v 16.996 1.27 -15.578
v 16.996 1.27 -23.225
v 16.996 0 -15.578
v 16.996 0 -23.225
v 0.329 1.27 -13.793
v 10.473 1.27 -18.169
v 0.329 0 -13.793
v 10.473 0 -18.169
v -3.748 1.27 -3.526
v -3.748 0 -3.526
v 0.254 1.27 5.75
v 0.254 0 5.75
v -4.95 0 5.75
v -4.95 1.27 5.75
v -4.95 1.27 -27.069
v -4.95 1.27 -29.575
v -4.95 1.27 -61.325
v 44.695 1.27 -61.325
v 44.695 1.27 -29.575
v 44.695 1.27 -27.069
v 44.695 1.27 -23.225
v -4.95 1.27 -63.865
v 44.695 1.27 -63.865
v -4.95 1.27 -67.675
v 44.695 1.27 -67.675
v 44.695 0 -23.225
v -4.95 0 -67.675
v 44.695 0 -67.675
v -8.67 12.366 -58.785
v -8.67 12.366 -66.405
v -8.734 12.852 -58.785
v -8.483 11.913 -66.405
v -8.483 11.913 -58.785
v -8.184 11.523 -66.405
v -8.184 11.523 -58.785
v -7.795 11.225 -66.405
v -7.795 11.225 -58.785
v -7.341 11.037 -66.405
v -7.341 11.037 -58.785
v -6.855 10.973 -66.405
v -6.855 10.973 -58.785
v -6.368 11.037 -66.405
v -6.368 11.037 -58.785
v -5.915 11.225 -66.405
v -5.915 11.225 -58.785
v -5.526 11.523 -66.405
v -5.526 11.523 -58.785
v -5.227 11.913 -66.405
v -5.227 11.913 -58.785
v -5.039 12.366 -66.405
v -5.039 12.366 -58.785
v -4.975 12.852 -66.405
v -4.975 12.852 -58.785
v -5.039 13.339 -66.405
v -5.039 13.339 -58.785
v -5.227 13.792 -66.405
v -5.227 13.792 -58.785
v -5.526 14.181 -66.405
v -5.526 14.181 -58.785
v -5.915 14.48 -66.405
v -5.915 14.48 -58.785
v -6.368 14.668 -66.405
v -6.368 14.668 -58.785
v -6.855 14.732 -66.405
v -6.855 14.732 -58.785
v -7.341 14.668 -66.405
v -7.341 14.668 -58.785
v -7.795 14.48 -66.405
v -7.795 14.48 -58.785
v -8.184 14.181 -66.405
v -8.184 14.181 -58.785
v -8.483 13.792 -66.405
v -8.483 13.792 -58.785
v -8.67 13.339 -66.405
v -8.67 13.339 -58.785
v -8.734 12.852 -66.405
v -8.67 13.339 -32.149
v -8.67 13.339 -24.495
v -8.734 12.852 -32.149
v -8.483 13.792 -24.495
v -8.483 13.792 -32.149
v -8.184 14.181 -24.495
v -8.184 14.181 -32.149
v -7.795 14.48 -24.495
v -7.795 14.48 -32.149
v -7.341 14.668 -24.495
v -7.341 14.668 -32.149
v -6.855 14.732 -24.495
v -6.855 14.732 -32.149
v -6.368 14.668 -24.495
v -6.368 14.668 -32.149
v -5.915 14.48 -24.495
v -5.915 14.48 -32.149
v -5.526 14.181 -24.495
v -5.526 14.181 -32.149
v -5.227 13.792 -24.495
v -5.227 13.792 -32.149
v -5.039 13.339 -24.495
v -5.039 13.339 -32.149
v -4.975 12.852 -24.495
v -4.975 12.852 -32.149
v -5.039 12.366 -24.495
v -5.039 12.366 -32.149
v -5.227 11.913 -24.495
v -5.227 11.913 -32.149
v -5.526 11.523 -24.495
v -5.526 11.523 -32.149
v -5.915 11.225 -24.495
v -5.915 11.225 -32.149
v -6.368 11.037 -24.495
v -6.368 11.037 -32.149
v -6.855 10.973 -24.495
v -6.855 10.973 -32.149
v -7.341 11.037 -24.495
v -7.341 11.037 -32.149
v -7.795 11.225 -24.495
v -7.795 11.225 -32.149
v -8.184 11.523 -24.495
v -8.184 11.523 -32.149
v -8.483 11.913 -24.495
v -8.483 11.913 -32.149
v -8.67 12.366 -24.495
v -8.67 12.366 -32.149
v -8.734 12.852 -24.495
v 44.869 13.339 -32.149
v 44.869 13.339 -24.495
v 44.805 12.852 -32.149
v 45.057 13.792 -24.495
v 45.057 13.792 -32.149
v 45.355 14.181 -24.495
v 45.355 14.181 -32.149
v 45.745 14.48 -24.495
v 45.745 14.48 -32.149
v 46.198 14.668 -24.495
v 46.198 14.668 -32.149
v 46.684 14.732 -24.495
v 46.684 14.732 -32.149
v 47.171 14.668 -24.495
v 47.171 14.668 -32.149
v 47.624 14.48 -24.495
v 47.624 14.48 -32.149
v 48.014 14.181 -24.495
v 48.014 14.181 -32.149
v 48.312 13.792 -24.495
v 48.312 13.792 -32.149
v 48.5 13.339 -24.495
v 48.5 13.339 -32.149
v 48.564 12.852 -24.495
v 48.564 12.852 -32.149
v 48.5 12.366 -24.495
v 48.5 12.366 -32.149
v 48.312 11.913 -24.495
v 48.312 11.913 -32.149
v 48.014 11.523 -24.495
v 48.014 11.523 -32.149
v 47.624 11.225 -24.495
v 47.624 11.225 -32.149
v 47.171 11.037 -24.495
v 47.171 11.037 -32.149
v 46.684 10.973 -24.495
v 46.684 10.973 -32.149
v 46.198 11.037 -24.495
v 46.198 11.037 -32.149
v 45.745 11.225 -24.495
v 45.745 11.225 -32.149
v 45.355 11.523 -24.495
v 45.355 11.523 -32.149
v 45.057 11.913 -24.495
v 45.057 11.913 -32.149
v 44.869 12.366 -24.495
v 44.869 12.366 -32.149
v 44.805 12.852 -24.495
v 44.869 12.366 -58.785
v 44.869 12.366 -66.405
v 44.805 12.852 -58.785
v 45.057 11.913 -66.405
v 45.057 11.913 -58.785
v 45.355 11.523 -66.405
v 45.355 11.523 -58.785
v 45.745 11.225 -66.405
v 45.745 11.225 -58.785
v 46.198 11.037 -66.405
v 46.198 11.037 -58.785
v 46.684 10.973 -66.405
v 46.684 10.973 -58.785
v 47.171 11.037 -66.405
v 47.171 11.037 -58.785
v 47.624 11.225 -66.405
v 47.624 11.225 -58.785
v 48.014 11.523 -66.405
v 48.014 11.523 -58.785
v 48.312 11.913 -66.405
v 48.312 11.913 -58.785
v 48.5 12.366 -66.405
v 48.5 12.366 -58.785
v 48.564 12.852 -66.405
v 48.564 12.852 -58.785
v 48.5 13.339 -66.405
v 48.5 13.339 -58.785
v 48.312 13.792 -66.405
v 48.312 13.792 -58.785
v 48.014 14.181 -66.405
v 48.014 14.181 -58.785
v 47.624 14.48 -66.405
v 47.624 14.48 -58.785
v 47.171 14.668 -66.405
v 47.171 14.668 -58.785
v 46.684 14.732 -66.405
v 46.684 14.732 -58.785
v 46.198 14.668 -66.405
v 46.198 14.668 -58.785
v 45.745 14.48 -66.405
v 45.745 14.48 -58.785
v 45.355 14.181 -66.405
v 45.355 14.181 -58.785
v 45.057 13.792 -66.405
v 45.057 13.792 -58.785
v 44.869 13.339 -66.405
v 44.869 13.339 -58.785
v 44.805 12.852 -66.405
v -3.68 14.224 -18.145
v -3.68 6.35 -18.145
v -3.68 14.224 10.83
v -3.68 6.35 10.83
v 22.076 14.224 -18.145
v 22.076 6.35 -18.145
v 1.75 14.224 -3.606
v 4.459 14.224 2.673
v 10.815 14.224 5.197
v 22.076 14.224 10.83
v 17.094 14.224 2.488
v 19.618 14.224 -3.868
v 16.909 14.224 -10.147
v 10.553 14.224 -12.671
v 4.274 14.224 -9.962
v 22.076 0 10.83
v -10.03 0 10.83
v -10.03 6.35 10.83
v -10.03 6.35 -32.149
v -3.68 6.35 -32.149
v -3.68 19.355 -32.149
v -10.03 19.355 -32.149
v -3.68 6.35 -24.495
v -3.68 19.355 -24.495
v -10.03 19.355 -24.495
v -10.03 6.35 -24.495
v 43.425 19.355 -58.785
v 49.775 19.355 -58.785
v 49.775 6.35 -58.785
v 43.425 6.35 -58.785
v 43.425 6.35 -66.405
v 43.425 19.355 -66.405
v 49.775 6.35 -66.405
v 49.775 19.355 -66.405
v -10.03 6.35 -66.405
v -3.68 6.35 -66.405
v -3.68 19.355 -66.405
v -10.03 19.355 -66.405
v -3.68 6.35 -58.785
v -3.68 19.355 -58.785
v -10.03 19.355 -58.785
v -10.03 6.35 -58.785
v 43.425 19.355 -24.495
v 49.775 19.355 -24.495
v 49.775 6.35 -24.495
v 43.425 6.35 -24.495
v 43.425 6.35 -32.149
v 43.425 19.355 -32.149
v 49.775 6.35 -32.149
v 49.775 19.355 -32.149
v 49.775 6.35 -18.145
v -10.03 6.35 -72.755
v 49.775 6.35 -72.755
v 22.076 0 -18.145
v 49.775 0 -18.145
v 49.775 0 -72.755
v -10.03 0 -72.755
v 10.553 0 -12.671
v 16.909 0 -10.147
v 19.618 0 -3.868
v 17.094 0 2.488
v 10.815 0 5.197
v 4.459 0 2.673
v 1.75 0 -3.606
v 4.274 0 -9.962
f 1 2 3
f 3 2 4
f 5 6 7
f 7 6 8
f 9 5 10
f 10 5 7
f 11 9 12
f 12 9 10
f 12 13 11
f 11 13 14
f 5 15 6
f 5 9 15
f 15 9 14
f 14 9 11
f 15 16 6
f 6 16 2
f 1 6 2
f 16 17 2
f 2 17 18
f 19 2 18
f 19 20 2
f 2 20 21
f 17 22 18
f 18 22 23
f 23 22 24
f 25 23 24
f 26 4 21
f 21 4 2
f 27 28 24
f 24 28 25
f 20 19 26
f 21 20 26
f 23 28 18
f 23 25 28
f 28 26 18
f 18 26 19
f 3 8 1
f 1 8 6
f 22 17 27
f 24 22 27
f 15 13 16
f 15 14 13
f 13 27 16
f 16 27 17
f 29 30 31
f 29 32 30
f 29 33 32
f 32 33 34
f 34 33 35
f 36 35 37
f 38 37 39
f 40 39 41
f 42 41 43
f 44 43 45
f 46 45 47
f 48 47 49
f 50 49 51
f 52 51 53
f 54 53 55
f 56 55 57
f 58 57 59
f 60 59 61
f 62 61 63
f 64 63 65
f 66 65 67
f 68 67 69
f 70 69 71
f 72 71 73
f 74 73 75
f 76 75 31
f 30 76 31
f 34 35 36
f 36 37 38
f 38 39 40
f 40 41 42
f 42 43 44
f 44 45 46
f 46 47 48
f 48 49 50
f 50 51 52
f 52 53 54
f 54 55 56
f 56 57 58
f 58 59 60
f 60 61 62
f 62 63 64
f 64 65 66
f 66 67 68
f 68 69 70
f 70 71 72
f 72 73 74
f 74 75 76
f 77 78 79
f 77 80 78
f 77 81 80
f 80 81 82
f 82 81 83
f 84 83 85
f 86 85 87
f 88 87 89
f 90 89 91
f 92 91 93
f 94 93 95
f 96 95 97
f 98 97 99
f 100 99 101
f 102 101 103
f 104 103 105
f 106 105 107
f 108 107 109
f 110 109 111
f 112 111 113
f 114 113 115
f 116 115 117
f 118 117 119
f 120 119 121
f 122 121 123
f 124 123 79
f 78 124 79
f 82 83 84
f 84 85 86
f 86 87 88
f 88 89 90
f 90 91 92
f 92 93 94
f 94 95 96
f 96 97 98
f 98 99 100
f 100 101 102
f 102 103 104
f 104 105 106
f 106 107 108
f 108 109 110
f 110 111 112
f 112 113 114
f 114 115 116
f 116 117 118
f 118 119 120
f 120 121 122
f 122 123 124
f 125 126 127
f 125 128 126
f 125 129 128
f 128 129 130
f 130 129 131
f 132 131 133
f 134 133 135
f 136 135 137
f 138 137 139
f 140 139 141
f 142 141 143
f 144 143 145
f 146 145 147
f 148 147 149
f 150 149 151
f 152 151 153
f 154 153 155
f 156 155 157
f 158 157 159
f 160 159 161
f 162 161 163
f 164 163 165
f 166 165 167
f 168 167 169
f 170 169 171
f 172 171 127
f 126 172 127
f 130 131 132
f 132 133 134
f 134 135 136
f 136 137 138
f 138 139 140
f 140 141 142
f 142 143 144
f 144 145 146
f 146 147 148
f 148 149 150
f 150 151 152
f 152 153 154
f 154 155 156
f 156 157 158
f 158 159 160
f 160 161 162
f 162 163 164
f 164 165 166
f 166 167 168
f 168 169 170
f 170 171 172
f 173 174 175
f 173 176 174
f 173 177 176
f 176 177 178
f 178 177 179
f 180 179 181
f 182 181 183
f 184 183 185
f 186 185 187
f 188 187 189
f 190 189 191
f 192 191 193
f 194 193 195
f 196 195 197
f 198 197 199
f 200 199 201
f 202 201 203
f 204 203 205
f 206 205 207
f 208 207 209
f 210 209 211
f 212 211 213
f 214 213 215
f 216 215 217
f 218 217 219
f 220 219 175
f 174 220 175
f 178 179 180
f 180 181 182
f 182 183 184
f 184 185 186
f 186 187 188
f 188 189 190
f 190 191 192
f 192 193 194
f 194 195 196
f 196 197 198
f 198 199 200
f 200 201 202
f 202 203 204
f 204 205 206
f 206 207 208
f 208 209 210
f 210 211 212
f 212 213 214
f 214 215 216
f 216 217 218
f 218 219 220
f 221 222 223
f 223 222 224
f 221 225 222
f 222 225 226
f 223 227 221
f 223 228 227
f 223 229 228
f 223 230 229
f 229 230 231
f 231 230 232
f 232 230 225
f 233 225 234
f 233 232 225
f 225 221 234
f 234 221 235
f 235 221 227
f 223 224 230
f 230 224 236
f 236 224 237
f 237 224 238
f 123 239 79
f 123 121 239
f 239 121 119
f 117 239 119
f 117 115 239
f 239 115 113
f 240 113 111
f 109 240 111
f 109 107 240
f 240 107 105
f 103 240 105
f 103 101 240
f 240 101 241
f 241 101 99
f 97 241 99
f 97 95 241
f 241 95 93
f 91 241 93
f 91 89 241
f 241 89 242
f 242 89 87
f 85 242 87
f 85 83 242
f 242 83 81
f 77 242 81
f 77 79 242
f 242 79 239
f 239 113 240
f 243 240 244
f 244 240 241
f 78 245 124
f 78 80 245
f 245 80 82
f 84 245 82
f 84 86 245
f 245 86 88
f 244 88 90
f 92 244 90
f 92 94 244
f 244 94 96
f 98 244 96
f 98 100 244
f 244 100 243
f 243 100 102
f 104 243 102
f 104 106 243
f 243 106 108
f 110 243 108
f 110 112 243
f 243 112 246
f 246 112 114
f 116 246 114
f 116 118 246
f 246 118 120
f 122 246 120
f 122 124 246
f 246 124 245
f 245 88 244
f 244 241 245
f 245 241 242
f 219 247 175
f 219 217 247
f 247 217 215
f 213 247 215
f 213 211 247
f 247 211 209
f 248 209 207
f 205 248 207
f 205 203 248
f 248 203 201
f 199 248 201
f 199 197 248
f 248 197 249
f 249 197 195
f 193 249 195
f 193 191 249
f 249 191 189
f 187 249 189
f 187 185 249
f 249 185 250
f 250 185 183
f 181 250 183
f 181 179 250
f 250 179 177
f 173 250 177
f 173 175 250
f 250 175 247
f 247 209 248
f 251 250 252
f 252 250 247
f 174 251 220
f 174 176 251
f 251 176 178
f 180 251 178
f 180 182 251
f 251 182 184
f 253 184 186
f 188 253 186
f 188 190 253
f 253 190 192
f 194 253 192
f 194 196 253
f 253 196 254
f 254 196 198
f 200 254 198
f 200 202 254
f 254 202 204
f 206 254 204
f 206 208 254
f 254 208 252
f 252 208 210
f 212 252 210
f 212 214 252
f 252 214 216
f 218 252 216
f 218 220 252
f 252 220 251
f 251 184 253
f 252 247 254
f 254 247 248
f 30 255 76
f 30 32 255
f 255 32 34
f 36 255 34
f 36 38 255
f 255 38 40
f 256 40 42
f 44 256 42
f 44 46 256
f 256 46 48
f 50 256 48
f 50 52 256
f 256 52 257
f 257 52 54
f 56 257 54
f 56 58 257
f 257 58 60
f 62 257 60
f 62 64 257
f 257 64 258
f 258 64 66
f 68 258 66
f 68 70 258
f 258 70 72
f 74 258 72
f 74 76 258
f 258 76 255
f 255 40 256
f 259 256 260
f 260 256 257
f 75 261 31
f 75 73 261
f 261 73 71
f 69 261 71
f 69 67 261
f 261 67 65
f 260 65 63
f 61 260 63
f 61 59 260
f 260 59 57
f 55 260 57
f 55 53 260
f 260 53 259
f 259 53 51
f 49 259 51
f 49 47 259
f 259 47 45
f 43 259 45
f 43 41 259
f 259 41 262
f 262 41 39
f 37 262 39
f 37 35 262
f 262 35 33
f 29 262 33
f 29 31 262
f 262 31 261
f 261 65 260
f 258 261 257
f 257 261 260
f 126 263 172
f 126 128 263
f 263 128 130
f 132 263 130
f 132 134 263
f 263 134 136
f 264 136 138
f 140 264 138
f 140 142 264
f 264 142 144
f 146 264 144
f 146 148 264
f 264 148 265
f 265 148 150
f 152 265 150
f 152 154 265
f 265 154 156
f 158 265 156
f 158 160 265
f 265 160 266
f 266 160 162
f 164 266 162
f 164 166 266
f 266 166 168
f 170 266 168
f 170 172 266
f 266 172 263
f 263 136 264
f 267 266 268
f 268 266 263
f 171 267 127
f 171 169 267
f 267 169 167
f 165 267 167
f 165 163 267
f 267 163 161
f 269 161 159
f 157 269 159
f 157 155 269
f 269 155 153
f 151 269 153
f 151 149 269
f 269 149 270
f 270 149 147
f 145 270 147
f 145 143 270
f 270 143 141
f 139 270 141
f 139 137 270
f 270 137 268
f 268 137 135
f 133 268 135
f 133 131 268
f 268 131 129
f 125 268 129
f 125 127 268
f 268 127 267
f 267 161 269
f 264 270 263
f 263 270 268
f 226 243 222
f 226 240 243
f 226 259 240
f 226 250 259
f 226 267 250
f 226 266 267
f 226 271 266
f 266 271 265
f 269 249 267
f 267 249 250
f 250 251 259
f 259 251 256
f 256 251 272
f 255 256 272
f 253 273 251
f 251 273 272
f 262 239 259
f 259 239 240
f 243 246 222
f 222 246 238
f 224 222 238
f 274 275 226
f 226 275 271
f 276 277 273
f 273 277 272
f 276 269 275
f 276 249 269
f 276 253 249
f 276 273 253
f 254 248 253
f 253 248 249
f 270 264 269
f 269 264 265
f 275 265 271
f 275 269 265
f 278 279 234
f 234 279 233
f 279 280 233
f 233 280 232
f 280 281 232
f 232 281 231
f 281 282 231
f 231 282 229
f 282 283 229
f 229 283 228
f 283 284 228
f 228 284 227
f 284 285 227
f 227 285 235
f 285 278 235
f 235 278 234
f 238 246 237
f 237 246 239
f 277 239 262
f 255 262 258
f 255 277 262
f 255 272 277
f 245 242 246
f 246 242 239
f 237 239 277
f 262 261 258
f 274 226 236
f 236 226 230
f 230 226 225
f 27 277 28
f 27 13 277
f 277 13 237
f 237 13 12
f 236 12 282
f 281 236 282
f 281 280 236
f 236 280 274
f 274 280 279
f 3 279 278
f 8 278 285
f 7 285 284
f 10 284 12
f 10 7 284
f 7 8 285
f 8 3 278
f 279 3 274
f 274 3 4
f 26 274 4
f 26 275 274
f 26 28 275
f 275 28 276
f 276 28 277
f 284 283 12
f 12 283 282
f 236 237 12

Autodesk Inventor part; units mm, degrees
ref_plane "YZ Plane" through (0, 0, 0) normal (1, 0, 0) x (0, 1, 0)
ref_plane "XZ Plane" through (0, 0, 0) normal (0, 1, 0) x (-1, 0, 0)
ref_plane "XY Plane" through (0, 0, 0) normal (0, 0, 1) x (1, 0, 0)
sketch "Sketch1" plane through (0, 0, 0) normal (0, 1, 0) x (-1, 0, 0)
  line L0 (10.0298, 10.8298) -> (-22.0758, 10.8298)
  line L1 (-22.0758, 10.8298) -> (-22.0758, -18.1453)
  line L2 (-22.0758, -18.1453) -> (10.0298, -18.1453)
  line L3 (10.0298, -18.1453) -> (10.0298, 10.8298)
  line L4 (10.0298, 10.8298) -> (0.708, 10.8298)
  line L5 (10.0298, 4.4798) -> (10.0298, 10.8298)
  line L6 (10.0298, -18.1453) -> (0.708, -18.1453)
  line L7 (10.0298, -11.954) -> (10.0298, -18.1453)
  line L8 (-22.0758, 4.4798) -> (-22.0758, -11.954)
  line L9 (-4.274, -9.9621) -> (-10.5532, -12.6713)
  line L10 (-10.5532, -12.6713) -> (-16.9089, -10.147)
  line L11 (-16.9089, -10.147) -> (-19.6181, -3.8679)
  line L12 (-19.6181, -3.8679) -> (-17.0938, 2.4878)
  line L13 (-17.0938, 2.4878) -> (-10.8147, 5.1971)
  line L14 (-10.8147, 5.1971) -> (-4.459, 2.6728)
  line L15 (-4.459, 2.6728) -> (-1.7498, -3.6063)
  line L16 (-1.7498, -3.6063) -> (-4.274, -9.9621)
  point P0 (0, 0)
  point P1 (-10.6839, -3.7371)
  dimension "d0" = 28.975
  dimension "d1" = 32.1056
extrude "Extrusion1" add sketch "Sketch1" along normal blind 14.224
sketch "Sketch2" plane through (0, 0, 0) normal (0, -1, 0) x (1, 0, 0)
  line L0 (-10.0298, -18.1453) -> (-10.0298, 10.8298) projected
  line L1 (-10.0298, -18.1453) -> (49.7745, -18.1453)
  line L2 (49.7745, -18.1453) -> (49.7745, -24.4953)
  line L3 (49.7745, -24.4953) -> (-10.0298, -24.4953)
  line L4 (-10.0298, -24.4953) -> (-10.0298, -18.1453)
  line L5 (-10.0298, -24.4953) -> (49.7745, -24.4953)
  line L6 (49.7745, -24.4953) -> (49.7745, -72.7553)
  line L7 (49.7745, -72.7553) -> (-10.0298, -72.7553)
  line L8 (-10.0298, -72.7553) -> (-10.0298, -24.4953)
  line L9 (-10.0298, -24.4953) -> (-3.6798, -24.4953)
  line L10 (-3.6798, -24.4953) -> (-3.6798, -32.1153)
  line L11 (-3.6798, -32.1153) -> (-10.0298, -32.1153)
  line L12 (-10.0298, -32.1153) -> (-10.0298, -24.4953)
  line L13 (49.7745, -24.4953) -> (43.4245, -24.4953)
  line L14 (43.4245, -24.4953) -> (43.4245, -32.1153)
  line L15 (43.4245, -32.1153) -> (49.7745, -32.1153)
  line L16 (49.7745, -32.1153) -> (49.7745, -24.4953)
  line L17 (49.7745, -72.7553) -> (-10.0298, -72.7553)
  line L18 (-10.0298, -72.7553) -> (-10.0298, -66.4053)
  line L19 (-10.0298, -66.4053) -> (49.7745, -66.4053)
  line L20 (49.7745, -66.4053) -> (49.7745, -72.7553)
  line L21 (-10.0298, -66.4053) -> (-3.6798, -66.4053)
  line L22 (-3.6798, -66.4053) -> (-3.6798, -58.7853)
  line L23 (-3.6798, -58.7853) -> (-10.0298, -58.7853)
  line L24 (-10.0298, -58.7853) -> (-10.0298, -66.4053)
  line L25 (49.7745, -66.4053) -> (43.4245, -66.4053)
  line L26 (43.4245, -66.4053) -> (43.4245, -58.7853)
  line L27 (43.4245, -58.7853) -> (49.7745, -58.7853)
  line L28 (49.7745, -58.7853) -> (49.7745, -66.4053)
  point P0 (0, 0)
  dimension "d8" = 59.8043
  dimension "d9" = 6.35
  dimension "d10" = 48.26
  dimension "d11" = 6.35
  dimension "d12" = 7.62
  dimension "d13" = 6.35
  dimension "d14" = 6.35
  dimension "d15" = 6.35
  dimension "d16" = 7.62
extrude "Extrusion2" add sketch "Sketch2" against normal blind 6.35
sketch "Sketch3" plane through (0, 6.35, 0) normal (0, 1, 0) x (1, 0, 0)
  line L0 (-10.0298, -10.8298) -> (-10.0298, 72.7553) projected
  line L1 (49.7745, 18.1453) -> (49.7745, 72.7553) projected
  line L2 (-10.0298, 72.7553) -> (49.7745, 72.7553)
  line L3 (49.7745, 72.7553) -> (49.7745, 66.4053)
  line L4 (49.7745, 66.4053) -> (-10.0298, 66.4053)
  line L5 (-10.0298, 66.4053) -> (-10.0298, 72.7553)
  line L6 (-10.0298, 66.4053) -> (-3.6798, 66.4053)
  line L7 (-3.6798, 66.4053) -> (-3.6798, 58.7853)
  line L8 (-3.6798, 58.7853) -> (-10.0298, 58.7853)
  line L9 (-10.0298, 58.7853) -> (-10.0298, 66.4053)
  line L10 (49.7745, 66.4053) -> (43.4245, 66.4053)
  line L11 (43.4245, 66.4053) -> (43.4245, 58.7853)
  line L12 (43.4245, 58.7853) -> (49.7745, 58.7853)
  line L13 (49.7745, 58.7853) -> (49.7745, 66.4053)
  line L14 (22.0758, 18.1453) -> (-10.0298, 18.1453) projected
  line L15 (-10.0298, 18.1453) -> (-3.6798, 18.1453)
  line L16 (49.7745, 18.1453) -> (43.4245, 18.1453)
  line L17 (-10.0298, 18.1453) -> (49.7745, 18.1453)
  line L18 (49.7745, 24.4953) -> (-10.0298, 24.4953)
  line L19 (-10.0298, 24.4953) -> (-10.0298, 18.1453)
  line L20 (-10.0298, 24.4953) -> (-3.6798, 24.4953)
  line L21 (-3.6798, 24.4953) -> (-3.6798, 32.1487)
  line L22 (-3.6798, 32.1487) -> (-10.0298, 32.1487)
  line L23 (-10.0298, 32.1487) -> (-10.0298, 24.4953)
  line L24 (49.7745, 24.4953) -> (43.4245, 24.4953)
  line L25 (43.4245, 24.4953) -> (43.4245, 32.1487)
  line L26 (43.4245, 32.1487) -> (49.7745, 32.1487)
  line L27 (49.7745, 32.1487) -> (49.7745, 24.4953)
  point P0 (0, 0)
  dimension "d19" = 6.35
  dimension "d20" = 6.35
  dimension "d21" = 7.62
  dimension "d22" = 6.35
  dimension "d23" = 7.62
  dimension "d26" = 6.35
extrude "Extrusion3" add sketch "Sketch3" along normal blind 13.0048 contours L0 L22 L21 L18 | L0 L4 L7 L8 | L25 L26 L1 L18 | L4 L1 L12 L11
sketch "Sketch4" plane through (-10.0298, 0, 10.8298) normal (0, 0, 1) x (1, 0, 0)
  line L0 (32.1056, 14.224) -> (0, 14.224) projected
  line L1 (6.35, 6.35) -> (6.35, 19.3548) projected
  line L2 (0, 14.224) -> (6.35, 14.224)
  line L3 (6.35, 14.224) -> (6.35, 6.35)
  line L4 (6.35, 6.35) -> (0, 6.35)
  line L5 (0, 6.35) -> (0, 14.224)
  point P0 (10.0298, 0)
extrude "Extrusion4" cut sketch "Sketch4" along normal mid plane 64.7827
sketch "Sketch5" plane through (-3.6798, 6.35, -66.4053) normal (0, 0, -1) x (-1, 0, 0)
  line L0 (6.35, 13.0048) -> (0, 0)
  line L1 (0, 0) -> (0, 13.0048) projected
  line L2 (0, 0) -> (0, 13.0048)
  line L3 (0, 0) -> (6.35, 0) projected
  line L4 (0, 13.0048) -> (6.35, 0)
  line L5 (-53.4543, 0) -> (-53.4543, 13.0048) projected
  line L6 (-53.4543, 13.0048) -> (-47.2741, 0)
  line L7 (-47.2741, 13.0048) -> (-53.4543, 0)
  circle A0 centre (3.175, 6.5024) radius 1.8796
  circle A1 centre (-50.3642, 6.5024) radius 1.8796
  point P0 (-3.6798, -6.35)
  dimension "d31" = 3.7592
  dimension "d32" = 3.7592
extrude "Extrusion5" cut sketch "Sketch5" along normal mid plane 183.8452 contours A0 L4 L0 | L0 L4 A0 | L4 A0 L0 | L0 A0 L4 | A1 L6 L7 | L7 L6 A1 | A1 L7 L6 | L7 A1 L6
shell "Shell1" thickness 5.08 removed faces 1 at (20.6069, 0, -54.5519)
properties part number "leftside"
